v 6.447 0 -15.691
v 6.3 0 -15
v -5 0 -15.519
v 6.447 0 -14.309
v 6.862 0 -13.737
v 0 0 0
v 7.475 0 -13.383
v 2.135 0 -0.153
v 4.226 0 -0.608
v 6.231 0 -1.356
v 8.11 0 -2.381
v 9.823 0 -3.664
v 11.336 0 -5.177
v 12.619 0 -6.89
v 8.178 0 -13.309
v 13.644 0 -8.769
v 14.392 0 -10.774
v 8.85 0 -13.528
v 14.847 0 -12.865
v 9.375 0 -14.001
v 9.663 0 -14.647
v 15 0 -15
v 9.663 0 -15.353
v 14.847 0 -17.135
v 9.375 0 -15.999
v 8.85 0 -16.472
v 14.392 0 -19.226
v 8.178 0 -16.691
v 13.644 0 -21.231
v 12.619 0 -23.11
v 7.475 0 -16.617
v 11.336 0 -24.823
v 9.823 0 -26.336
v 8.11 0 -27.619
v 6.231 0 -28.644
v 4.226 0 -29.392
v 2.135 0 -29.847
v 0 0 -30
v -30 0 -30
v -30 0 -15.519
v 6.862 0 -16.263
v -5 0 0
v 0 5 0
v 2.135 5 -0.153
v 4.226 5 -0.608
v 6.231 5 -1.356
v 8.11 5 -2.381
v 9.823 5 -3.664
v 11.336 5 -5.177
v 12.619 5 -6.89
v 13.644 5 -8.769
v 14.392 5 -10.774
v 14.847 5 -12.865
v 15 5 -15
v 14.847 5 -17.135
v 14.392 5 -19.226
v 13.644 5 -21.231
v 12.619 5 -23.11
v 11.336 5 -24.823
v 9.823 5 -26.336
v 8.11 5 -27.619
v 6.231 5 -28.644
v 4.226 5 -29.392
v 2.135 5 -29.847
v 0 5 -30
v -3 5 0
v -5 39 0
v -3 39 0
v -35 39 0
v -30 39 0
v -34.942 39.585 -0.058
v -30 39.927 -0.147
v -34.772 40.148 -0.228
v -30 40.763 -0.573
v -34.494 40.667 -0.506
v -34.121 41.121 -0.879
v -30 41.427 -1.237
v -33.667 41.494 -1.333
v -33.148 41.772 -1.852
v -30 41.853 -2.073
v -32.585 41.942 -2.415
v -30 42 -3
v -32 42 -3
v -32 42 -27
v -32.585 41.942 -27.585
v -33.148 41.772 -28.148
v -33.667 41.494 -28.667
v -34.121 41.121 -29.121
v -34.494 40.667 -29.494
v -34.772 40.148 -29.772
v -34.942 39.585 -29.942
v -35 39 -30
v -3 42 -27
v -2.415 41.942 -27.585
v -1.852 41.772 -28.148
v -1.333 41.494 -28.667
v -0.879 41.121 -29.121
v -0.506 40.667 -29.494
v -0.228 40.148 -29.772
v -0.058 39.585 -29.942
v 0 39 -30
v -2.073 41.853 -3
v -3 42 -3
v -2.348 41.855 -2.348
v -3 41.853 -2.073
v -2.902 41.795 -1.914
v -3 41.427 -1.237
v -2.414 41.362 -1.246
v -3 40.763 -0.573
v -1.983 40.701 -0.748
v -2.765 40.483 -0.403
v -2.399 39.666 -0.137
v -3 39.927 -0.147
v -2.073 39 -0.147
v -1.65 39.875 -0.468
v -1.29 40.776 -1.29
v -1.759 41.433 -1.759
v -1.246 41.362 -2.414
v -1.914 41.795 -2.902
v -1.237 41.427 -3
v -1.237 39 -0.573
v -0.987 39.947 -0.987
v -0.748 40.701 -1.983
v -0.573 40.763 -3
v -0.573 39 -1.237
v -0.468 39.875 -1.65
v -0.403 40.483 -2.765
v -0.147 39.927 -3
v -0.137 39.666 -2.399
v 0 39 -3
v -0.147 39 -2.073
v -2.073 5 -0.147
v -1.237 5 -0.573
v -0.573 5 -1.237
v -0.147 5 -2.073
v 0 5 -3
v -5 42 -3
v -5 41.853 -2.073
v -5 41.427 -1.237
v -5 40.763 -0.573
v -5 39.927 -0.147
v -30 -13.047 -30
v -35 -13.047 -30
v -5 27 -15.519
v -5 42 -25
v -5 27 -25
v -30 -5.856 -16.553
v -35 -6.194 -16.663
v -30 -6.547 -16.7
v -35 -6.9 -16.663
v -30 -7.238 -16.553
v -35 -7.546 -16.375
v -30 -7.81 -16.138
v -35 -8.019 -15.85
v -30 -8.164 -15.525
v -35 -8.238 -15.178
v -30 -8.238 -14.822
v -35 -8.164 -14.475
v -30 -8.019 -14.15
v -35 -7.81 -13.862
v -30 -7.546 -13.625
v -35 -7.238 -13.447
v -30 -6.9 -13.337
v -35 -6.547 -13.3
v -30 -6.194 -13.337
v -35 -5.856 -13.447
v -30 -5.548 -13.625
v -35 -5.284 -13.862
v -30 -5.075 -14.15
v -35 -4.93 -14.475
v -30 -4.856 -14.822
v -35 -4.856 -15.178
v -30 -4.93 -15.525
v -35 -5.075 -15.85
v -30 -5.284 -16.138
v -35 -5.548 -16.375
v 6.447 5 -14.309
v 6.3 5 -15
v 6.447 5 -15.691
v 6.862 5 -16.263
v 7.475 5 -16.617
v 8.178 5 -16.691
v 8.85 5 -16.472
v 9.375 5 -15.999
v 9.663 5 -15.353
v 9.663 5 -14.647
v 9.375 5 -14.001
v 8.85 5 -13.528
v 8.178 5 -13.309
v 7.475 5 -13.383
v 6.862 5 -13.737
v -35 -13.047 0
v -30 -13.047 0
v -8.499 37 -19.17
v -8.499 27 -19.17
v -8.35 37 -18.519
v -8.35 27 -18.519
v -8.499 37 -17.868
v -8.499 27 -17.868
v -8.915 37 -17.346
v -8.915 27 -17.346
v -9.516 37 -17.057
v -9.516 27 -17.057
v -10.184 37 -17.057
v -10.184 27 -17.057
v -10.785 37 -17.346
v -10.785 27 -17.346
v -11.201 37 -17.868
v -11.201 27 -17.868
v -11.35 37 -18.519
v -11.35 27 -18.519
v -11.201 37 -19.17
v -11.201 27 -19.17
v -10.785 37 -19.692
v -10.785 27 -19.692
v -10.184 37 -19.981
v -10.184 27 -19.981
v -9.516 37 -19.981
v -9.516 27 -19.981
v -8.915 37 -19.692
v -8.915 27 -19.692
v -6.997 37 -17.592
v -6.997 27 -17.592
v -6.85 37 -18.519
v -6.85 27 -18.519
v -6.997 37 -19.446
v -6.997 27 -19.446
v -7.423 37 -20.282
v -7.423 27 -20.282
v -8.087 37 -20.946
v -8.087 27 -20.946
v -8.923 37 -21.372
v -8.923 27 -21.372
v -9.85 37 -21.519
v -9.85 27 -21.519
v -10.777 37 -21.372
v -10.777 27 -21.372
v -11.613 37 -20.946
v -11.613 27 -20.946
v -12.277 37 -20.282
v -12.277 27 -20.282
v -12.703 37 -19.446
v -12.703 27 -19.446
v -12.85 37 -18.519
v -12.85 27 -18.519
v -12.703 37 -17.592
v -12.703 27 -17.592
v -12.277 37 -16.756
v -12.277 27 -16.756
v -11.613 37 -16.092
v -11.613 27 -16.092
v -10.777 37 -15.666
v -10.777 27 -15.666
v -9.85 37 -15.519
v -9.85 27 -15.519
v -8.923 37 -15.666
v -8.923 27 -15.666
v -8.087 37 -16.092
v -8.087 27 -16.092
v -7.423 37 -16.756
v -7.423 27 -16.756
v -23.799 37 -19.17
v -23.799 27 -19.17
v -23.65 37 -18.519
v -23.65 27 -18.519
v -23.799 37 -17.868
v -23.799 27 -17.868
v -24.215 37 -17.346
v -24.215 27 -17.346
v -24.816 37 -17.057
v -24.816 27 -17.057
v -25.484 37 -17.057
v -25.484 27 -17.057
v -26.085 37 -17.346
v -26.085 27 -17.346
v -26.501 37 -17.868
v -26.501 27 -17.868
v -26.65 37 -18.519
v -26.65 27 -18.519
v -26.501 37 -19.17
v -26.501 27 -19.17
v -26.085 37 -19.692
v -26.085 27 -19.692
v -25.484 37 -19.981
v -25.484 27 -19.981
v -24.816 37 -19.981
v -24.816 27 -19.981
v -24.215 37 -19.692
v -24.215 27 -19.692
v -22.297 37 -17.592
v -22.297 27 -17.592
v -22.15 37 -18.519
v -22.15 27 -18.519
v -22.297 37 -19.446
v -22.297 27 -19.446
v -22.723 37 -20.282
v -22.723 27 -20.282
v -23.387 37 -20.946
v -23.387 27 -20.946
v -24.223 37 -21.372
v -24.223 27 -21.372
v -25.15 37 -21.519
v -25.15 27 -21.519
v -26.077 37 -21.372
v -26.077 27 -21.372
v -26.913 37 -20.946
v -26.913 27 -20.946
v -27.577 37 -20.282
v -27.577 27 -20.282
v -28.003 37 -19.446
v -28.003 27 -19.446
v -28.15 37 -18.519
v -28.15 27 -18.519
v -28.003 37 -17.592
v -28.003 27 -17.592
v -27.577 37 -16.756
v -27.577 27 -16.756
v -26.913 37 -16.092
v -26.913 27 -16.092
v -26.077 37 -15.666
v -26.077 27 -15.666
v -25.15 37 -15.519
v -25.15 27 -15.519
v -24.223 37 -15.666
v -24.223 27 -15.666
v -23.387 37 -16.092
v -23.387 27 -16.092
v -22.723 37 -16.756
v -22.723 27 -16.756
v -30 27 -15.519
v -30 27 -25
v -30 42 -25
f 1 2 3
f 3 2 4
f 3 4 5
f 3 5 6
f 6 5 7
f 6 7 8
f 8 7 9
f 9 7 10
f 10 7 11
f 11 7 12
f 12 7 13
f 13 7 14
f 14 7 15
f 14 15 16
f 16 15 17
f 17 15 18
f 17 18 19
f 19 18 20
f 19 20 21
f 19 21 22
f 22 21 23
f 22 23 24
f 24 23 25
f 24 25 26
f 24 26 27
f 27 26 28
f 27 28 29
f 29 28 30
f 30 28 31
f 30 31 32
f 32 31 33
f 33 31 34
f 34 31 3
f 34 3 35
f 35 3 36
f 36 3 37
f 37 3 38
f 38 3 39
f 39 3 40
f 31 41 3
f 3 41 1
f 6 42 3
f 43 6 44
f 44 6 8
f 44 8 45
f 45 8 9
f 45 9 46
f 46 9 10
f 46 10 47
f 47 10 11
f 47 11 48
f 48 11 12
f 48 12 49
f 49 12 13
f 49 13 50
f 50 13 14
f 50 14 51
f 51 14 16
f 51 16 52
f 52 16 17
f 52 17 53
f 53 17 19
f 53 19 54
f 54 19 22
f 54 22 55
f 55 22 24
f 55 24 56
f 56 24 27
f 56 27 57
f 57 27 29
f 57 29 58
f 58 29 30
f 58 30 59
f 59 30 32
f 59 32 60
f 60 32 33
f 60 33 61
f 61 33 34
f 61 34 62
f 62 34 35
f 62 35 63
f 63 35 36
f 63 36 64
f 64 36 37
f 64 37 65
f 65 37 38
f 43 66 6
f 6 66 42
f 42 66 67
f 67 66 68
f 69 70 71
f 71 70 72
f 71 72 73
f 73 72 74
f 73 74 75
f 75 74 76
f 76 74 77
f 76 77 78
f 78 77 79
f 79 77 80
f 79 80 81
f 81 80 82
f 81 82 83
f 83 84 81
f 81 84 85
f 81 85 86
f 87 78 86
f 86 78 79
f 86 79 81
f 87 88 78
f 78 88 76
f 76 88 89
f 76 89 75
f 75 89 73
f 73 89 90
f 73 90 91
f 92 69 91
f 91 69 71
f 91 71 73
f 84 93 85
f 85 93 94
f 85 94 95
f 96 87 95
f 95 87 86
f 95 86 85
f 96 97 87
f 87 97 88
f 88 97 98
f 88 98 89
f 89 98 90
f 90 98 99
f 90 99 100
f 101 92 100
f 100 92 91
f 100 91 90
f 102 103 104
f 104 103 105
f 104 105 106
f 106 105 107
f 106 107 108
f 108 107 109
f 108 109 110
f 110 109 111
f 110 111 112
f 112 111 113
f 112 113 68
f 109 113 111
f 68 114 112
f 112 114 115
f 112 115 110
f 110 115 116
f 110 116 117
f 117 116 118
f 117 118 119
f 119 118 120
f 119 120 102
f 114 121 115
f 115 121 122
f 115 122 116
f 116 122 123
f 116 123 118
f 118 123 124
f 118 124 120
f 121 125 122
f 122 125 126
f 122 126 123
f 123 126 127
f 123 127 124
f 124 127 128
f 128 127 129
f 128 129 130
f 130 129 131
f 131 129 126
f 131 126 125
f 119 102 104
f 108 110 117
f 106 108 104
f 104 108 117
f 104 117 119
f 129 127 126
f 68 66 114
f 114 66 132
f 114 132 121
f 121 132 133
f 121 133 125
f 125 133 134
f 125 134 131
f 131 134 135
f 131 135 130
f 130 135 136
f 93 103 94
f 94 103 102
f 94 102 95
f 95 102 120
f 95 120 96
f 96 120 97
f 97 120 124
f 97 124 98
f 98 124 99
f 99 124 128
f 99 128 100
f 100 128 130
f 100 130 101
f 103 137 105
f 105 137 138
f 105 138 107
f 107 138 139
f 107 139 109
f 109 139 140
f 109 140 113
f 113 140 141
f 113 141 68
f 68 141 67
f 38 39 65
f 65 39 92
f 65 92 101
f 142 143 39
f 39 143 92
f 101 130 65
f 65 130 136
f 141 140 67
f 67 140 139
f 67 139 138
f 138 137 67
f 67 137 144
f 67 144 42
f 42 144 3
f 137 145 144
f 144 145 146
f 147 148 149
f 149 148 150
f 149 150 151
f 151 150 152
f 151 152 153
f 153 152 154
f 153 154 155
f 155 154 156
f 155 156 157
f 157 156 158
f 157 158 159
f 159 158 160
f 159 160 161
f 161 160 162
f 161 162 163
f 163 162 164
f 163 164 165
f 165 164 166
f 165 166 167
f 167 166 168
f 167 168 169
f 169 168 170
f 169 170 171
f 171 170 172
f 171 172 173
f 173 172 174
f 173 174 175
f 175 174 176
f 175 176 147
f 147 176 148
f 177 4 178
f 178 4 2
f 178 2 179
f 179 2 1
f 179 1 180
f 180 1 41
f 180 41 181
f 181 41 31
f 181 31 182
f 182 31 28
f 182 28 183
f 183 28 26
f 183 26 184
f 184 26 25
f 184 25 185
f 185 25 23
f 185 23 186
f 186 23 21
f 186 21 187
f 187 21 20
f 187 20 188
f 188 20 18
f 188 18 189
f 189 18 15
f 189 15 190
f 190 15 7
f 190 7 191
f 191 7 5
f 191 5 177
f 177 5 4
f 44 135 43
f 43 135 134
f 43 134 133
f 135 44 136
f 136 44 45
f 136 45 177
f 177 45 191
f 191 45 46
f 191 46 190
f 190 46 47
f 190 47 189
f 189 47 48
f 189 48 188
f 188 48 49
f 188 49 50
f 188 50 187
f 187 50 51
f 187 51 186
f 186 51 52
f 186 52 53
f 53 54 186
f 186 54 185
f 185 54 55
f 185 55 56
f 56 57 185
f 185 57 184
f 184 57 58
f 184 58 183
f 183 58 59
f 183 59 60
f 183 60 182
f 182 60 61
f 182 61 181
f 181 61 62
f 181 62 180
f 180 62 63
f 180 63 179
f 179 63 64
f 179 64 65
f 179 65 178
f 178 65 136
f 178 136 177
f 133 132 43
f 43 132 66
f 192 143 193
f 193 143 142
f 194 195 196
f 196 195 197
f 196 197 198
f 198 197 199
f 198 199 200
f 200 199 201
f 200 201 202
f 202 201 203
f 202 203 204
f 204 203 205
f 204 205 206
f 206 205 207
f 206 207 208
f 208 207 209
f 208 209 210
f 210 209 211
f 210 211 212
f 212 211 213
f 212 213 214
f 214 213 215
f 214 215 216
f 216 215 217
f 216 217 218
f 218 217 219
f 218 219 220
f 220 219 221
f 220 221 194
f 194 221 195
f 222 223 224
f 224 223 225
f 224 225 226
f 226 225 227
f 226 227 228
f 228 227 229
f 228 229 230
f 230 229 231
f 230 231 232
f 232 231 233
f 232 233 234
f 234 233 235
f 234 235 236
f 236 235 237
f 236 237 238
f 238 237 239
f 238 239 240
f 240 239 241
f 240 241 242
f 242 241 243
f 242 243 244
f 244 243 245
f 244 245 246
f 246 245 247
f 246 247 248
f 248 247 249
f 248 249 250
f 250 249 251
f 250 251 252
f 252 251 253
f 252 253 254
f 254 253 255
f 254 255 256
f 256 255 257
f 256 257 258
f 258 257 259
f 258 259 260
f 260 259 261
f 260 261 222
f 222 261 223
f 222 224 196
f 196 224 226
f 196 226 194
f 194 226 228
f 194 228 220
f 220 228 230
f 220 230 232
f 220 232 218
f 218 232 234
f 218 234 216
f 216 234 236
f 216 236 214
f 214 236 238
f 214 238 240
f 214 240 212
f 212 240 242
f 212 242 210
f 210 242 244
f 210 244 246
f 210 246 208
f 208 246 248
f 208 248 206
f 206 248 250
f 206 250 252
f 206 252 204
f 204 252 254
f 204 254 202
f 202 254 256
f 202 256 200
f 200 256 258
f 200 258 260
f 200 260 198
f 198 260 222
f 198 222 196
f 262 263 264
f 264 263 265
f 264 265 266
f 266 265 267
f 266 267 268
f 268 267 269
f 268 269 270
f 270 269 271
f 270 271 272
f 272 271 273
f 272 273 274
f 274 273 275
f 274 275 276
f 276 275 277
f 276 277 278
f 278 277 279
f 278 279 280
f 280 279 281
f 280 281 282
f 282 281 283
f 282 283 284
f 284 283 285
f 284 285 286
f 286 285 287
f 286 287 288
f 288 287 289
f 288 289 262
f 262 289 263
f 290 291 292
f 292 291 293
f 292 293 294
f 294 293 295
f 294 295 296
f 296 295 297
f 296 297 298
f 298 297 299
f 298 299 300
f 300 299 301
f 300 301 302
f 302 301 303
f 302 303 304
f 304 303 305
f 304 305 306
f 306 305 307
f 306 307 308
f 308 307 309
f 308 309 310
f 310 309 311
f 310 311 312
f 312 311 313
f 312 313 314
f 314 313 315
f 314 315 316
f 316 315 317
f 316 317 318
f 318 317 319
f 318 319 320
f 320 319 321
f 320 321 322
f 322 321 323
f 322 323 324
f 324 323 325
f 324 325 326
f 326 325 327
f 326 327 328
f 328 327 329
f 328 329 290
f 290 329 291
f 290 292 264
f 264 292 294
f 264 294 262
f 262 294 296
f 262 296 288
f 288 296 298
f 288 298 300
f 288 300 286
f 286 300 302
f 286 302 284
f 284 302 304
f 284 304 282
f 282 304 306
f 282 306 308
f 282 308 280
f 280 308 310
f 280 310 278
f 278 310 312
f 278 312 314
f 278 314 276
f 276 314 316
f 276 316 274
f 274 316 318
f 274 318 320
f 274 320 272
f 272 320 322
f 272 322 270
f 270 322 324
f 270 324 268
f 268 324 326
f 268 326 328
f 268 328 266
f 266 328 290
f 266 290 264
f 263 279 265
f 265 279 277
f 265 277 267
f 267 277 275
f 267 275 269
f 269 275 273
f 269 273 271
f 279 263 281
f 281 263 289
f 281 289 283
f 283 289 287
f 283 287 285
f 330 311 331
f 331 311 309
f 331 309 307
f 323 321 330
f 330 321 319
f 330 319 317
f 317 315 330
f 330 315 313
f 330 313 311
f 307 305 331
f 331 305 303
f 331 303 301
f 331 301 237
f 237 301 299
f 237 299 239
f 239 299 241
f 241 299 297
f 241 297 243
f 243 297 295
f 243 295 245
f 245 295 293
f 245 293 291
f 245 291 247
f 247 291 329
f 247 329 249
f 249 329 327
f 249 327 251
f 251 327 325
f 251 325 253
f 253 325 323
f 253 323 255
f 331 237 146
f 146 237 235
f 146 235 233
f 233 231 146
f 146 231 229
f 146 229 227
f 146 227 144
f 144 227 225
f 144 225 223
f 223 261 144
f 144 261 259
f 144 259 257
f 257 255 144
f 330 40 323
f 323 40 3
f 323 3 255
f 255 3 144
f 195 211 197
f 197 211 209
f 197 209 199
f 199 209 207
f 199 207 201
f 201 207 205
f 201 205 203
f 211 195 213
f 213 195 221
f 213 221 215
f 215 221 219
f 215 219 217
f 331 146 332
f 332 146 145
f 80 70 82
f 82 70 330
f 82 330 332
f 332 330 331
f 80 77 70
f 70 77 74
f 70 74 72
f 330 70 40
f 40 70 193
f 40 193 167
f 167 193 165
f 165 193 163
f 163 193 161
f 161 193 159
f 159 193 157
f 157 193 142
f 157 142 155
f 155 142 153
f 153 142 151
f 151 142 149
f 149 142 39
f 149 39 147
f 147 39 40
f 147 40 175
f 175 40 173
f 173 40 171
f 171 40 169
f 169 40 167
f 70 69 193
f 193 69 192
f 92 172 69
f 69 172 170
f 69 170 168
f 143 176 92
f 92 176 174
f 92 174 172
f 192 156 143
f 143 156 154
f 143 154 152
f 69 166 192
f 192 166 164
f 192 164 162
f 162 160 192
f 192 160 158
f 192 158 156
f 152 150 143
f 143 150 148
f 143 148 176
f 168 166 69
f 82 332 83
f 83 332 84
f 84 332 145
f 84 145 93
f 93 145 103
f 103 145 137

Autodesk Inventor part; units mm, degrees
ref_plane "YZ Plane" through (0, 0, 0) normal (1, 0, 0) x (0, 1, 0)
ref_plane "XZ Plane" through (0, 0, 0) normal (0, 1, 0) x (-1, 0, 0)
ref_plane "XY Plane" through (0, 0, 0) normal (0, 0, 1) x (1, 0, 0)
sketch "Sketch1" plane through (0, 0, 0) normal (0, 1, 0) x (-1, 0, 0)
  line L0 (0, 0) -> (35, 0) construction
  line L1 (35, 0) -> (35, -30)
  line L2 (35, -30) -> (0, -30)
  line L3 (0, -30) -> (0, 0)
  line L4 (30, -25) -> (30, -5)
  line L5 (30, -5) -> (5, -5) construction
  line L6 (5, -5) -> (5, -25)
  line L7 (5, -25) -> (30, -25)
  line L8 (30, -5) -> (30, 0)
  line L9 (5, -5) -> (5, 0)
  line L10 (5, 0) -> (0, 0)
  line L11 (30, 0) -> (35, 0)
  dimension "d0" = 35
  dimension "d1" = 30
  dimension "d2" = 5
extrude "Extrusion1" add sketch "Sketch1" along normal blind 42
sketch "Sketch2" plane through (0, 0, 0) normal (0, 1, 0) x (-1, 0, 0)
  line L0 (30, 0) -> (30, -25) projected
  line L1 (5, -25) -> (5, 0) projected
  line L2 (30, -25) -> (5, -25)
  line L3 (5, -25) -> (5, -15.519)
  line L4 (5, -15.519) -> (30, -15.519)
  line L5 (30, -15.519) -> (30, -25)
  point P0 (0, 0)
  dimension "d5" = 9.481
extrude "Extrusion2" add sketch "Sketch2" along normal blind 27
sketch "Sketch3" plane through (0, 27, 0) normal (0, 1, 0) x (1, 0, 0)
  circle A0 centre (-25.15, 18.519) radius 1.5
  line L0 (-30, 0) -> (-30, 15.519) projected
  circle A1 centre (-25.15, 18.519) radius 3
  line L1 (-30, 15.519) -> (-5, 15.519) projected
  line L2 (-17.5, 15.519) -> (-17.5, 30) construction
  line L3 (0, 30) -> (-35, 30) construction
  circle A2 centre (-9.85, 18.519) radius 1.5
  circle A3 centre (-9.85, 18.519) radius 3
  point P0 (0, 0)
  dimension "d8" = 3
  dimension "d9" = 4.85
  dimension "d10" = 6
extrude "Extrusion3" add sketch "Sketch3" along normal blind 10
sketch "Sketch4" plane through (0, 0, 0) normal (0, -1, 0) x (1, 0, 0)
  line L0 (-35, -30) -> (-35, 0) projected
  line L1 (0, -30) -> (-35, -30) projected
  line L2 (-35, 0) -> (-30, 0)
  line L3 (-30, 0) -> (-30, -30)
  line L4 (-30, -30) -> (-35, -30)
  line L5 (-35, -30) -> (-35, 0)
  line L6 (-30, 0) -> (-30, -15.519) projected
  point P0 (0, 0)
extrude "Extrusion4" add sketch "Sketch4" along normal blind 13.047
sketch "Sketch5" plane through (0, 0, 0) normal (1, 0, 0) x (0, 0, -1)
  line L0 (15.519, 0) -> (0, 0) projected
  line L1 (30, 0) -> (30, 42) projected
  line L2 (0, 0) -> (30, 0)
  line L3 (30, 0) -> (30, 5)
  line L4 (30, 5) -> (0, 5)
  line L5 (0, 5) -> (0, 0)
  dimension "d15" = 5
extrude "Extrusion5" add sketch "Sketch5" along normal blind 15
sketch "Sketch6" plane through (0, 5, 0) normal (0, 1, 0) x (1, 0, 0)
  circle A0 centre (8, 7) radius 3.5 construction
  circle A1 centre (8, 23) radius 3.5 construction
  line L0 (8, 7) -> (8, 23) construction
  line L1 (8, 15) -> (15, 15) construction
  line L2 (15, 0) -> (15, 30) construction
  line L3 (15, 30) -> (15, 0) construction
  line L4 (0, 30) -> (15, 30) construction
  circle A2 centre (8, 15) radius 1.7
  point P0 (0, 0)
  dimension "d18" = 7
  dimension "d19" = 7
  dimension "d20" = 7
  dimension "d21" = 7
  dimension "d25" = 3.4
extrude "Extrusion6" cut sketch "Sketch6" against normal up to surface (5 mm away) from surface at 0
sketch "Sketch7" plane through (-35, 42, -30) normal (-1, 0, 0) x (0, 0, 1)
  point P0 (30, -42)
sketch "Sketch8" plane through (-35, 42, -30) normal (-1, 0, 0) x (0, 0, 1)
  line L0 (0, -55.047) -> (0, 0) projected
  line L1 (30, -55.047) -> (30, 0) projected
  line L2 (0, -55.047) -> (30, -55.047) construction
  line L3 (30, -55.047) -> (30, -42.047) construction
  line L4 (30, -42.047) -> (0, -42.047) construction
  line L5 (0, -42.047) -> (0, -55.047) construction
  circle A0 centre (15, -48.547) radius 1.7
  point P0 (30, -42)
  dimension "d24" = 13
  dimension "d26" = 3.4
  dimension "d27" = 6.5
  dimension "d28" = 15
extrude "Extrusion7" cut sketch "Sketch8" against normal up to next
fillet "Fillet1" radius 3 6 edges at (0, 42, -15) (0, 23.5, 0) (-35, 42, -15) (-17.5, 42, -30) (-2.5, 42, 0) (-32.5, 42, 0)
fillet "Fillet2" radius 15 2 edges at (15, 2.5, 0) (15, 2.5, -30)
equation "\"d21\" = d20"
properties part number "imu_mount"
